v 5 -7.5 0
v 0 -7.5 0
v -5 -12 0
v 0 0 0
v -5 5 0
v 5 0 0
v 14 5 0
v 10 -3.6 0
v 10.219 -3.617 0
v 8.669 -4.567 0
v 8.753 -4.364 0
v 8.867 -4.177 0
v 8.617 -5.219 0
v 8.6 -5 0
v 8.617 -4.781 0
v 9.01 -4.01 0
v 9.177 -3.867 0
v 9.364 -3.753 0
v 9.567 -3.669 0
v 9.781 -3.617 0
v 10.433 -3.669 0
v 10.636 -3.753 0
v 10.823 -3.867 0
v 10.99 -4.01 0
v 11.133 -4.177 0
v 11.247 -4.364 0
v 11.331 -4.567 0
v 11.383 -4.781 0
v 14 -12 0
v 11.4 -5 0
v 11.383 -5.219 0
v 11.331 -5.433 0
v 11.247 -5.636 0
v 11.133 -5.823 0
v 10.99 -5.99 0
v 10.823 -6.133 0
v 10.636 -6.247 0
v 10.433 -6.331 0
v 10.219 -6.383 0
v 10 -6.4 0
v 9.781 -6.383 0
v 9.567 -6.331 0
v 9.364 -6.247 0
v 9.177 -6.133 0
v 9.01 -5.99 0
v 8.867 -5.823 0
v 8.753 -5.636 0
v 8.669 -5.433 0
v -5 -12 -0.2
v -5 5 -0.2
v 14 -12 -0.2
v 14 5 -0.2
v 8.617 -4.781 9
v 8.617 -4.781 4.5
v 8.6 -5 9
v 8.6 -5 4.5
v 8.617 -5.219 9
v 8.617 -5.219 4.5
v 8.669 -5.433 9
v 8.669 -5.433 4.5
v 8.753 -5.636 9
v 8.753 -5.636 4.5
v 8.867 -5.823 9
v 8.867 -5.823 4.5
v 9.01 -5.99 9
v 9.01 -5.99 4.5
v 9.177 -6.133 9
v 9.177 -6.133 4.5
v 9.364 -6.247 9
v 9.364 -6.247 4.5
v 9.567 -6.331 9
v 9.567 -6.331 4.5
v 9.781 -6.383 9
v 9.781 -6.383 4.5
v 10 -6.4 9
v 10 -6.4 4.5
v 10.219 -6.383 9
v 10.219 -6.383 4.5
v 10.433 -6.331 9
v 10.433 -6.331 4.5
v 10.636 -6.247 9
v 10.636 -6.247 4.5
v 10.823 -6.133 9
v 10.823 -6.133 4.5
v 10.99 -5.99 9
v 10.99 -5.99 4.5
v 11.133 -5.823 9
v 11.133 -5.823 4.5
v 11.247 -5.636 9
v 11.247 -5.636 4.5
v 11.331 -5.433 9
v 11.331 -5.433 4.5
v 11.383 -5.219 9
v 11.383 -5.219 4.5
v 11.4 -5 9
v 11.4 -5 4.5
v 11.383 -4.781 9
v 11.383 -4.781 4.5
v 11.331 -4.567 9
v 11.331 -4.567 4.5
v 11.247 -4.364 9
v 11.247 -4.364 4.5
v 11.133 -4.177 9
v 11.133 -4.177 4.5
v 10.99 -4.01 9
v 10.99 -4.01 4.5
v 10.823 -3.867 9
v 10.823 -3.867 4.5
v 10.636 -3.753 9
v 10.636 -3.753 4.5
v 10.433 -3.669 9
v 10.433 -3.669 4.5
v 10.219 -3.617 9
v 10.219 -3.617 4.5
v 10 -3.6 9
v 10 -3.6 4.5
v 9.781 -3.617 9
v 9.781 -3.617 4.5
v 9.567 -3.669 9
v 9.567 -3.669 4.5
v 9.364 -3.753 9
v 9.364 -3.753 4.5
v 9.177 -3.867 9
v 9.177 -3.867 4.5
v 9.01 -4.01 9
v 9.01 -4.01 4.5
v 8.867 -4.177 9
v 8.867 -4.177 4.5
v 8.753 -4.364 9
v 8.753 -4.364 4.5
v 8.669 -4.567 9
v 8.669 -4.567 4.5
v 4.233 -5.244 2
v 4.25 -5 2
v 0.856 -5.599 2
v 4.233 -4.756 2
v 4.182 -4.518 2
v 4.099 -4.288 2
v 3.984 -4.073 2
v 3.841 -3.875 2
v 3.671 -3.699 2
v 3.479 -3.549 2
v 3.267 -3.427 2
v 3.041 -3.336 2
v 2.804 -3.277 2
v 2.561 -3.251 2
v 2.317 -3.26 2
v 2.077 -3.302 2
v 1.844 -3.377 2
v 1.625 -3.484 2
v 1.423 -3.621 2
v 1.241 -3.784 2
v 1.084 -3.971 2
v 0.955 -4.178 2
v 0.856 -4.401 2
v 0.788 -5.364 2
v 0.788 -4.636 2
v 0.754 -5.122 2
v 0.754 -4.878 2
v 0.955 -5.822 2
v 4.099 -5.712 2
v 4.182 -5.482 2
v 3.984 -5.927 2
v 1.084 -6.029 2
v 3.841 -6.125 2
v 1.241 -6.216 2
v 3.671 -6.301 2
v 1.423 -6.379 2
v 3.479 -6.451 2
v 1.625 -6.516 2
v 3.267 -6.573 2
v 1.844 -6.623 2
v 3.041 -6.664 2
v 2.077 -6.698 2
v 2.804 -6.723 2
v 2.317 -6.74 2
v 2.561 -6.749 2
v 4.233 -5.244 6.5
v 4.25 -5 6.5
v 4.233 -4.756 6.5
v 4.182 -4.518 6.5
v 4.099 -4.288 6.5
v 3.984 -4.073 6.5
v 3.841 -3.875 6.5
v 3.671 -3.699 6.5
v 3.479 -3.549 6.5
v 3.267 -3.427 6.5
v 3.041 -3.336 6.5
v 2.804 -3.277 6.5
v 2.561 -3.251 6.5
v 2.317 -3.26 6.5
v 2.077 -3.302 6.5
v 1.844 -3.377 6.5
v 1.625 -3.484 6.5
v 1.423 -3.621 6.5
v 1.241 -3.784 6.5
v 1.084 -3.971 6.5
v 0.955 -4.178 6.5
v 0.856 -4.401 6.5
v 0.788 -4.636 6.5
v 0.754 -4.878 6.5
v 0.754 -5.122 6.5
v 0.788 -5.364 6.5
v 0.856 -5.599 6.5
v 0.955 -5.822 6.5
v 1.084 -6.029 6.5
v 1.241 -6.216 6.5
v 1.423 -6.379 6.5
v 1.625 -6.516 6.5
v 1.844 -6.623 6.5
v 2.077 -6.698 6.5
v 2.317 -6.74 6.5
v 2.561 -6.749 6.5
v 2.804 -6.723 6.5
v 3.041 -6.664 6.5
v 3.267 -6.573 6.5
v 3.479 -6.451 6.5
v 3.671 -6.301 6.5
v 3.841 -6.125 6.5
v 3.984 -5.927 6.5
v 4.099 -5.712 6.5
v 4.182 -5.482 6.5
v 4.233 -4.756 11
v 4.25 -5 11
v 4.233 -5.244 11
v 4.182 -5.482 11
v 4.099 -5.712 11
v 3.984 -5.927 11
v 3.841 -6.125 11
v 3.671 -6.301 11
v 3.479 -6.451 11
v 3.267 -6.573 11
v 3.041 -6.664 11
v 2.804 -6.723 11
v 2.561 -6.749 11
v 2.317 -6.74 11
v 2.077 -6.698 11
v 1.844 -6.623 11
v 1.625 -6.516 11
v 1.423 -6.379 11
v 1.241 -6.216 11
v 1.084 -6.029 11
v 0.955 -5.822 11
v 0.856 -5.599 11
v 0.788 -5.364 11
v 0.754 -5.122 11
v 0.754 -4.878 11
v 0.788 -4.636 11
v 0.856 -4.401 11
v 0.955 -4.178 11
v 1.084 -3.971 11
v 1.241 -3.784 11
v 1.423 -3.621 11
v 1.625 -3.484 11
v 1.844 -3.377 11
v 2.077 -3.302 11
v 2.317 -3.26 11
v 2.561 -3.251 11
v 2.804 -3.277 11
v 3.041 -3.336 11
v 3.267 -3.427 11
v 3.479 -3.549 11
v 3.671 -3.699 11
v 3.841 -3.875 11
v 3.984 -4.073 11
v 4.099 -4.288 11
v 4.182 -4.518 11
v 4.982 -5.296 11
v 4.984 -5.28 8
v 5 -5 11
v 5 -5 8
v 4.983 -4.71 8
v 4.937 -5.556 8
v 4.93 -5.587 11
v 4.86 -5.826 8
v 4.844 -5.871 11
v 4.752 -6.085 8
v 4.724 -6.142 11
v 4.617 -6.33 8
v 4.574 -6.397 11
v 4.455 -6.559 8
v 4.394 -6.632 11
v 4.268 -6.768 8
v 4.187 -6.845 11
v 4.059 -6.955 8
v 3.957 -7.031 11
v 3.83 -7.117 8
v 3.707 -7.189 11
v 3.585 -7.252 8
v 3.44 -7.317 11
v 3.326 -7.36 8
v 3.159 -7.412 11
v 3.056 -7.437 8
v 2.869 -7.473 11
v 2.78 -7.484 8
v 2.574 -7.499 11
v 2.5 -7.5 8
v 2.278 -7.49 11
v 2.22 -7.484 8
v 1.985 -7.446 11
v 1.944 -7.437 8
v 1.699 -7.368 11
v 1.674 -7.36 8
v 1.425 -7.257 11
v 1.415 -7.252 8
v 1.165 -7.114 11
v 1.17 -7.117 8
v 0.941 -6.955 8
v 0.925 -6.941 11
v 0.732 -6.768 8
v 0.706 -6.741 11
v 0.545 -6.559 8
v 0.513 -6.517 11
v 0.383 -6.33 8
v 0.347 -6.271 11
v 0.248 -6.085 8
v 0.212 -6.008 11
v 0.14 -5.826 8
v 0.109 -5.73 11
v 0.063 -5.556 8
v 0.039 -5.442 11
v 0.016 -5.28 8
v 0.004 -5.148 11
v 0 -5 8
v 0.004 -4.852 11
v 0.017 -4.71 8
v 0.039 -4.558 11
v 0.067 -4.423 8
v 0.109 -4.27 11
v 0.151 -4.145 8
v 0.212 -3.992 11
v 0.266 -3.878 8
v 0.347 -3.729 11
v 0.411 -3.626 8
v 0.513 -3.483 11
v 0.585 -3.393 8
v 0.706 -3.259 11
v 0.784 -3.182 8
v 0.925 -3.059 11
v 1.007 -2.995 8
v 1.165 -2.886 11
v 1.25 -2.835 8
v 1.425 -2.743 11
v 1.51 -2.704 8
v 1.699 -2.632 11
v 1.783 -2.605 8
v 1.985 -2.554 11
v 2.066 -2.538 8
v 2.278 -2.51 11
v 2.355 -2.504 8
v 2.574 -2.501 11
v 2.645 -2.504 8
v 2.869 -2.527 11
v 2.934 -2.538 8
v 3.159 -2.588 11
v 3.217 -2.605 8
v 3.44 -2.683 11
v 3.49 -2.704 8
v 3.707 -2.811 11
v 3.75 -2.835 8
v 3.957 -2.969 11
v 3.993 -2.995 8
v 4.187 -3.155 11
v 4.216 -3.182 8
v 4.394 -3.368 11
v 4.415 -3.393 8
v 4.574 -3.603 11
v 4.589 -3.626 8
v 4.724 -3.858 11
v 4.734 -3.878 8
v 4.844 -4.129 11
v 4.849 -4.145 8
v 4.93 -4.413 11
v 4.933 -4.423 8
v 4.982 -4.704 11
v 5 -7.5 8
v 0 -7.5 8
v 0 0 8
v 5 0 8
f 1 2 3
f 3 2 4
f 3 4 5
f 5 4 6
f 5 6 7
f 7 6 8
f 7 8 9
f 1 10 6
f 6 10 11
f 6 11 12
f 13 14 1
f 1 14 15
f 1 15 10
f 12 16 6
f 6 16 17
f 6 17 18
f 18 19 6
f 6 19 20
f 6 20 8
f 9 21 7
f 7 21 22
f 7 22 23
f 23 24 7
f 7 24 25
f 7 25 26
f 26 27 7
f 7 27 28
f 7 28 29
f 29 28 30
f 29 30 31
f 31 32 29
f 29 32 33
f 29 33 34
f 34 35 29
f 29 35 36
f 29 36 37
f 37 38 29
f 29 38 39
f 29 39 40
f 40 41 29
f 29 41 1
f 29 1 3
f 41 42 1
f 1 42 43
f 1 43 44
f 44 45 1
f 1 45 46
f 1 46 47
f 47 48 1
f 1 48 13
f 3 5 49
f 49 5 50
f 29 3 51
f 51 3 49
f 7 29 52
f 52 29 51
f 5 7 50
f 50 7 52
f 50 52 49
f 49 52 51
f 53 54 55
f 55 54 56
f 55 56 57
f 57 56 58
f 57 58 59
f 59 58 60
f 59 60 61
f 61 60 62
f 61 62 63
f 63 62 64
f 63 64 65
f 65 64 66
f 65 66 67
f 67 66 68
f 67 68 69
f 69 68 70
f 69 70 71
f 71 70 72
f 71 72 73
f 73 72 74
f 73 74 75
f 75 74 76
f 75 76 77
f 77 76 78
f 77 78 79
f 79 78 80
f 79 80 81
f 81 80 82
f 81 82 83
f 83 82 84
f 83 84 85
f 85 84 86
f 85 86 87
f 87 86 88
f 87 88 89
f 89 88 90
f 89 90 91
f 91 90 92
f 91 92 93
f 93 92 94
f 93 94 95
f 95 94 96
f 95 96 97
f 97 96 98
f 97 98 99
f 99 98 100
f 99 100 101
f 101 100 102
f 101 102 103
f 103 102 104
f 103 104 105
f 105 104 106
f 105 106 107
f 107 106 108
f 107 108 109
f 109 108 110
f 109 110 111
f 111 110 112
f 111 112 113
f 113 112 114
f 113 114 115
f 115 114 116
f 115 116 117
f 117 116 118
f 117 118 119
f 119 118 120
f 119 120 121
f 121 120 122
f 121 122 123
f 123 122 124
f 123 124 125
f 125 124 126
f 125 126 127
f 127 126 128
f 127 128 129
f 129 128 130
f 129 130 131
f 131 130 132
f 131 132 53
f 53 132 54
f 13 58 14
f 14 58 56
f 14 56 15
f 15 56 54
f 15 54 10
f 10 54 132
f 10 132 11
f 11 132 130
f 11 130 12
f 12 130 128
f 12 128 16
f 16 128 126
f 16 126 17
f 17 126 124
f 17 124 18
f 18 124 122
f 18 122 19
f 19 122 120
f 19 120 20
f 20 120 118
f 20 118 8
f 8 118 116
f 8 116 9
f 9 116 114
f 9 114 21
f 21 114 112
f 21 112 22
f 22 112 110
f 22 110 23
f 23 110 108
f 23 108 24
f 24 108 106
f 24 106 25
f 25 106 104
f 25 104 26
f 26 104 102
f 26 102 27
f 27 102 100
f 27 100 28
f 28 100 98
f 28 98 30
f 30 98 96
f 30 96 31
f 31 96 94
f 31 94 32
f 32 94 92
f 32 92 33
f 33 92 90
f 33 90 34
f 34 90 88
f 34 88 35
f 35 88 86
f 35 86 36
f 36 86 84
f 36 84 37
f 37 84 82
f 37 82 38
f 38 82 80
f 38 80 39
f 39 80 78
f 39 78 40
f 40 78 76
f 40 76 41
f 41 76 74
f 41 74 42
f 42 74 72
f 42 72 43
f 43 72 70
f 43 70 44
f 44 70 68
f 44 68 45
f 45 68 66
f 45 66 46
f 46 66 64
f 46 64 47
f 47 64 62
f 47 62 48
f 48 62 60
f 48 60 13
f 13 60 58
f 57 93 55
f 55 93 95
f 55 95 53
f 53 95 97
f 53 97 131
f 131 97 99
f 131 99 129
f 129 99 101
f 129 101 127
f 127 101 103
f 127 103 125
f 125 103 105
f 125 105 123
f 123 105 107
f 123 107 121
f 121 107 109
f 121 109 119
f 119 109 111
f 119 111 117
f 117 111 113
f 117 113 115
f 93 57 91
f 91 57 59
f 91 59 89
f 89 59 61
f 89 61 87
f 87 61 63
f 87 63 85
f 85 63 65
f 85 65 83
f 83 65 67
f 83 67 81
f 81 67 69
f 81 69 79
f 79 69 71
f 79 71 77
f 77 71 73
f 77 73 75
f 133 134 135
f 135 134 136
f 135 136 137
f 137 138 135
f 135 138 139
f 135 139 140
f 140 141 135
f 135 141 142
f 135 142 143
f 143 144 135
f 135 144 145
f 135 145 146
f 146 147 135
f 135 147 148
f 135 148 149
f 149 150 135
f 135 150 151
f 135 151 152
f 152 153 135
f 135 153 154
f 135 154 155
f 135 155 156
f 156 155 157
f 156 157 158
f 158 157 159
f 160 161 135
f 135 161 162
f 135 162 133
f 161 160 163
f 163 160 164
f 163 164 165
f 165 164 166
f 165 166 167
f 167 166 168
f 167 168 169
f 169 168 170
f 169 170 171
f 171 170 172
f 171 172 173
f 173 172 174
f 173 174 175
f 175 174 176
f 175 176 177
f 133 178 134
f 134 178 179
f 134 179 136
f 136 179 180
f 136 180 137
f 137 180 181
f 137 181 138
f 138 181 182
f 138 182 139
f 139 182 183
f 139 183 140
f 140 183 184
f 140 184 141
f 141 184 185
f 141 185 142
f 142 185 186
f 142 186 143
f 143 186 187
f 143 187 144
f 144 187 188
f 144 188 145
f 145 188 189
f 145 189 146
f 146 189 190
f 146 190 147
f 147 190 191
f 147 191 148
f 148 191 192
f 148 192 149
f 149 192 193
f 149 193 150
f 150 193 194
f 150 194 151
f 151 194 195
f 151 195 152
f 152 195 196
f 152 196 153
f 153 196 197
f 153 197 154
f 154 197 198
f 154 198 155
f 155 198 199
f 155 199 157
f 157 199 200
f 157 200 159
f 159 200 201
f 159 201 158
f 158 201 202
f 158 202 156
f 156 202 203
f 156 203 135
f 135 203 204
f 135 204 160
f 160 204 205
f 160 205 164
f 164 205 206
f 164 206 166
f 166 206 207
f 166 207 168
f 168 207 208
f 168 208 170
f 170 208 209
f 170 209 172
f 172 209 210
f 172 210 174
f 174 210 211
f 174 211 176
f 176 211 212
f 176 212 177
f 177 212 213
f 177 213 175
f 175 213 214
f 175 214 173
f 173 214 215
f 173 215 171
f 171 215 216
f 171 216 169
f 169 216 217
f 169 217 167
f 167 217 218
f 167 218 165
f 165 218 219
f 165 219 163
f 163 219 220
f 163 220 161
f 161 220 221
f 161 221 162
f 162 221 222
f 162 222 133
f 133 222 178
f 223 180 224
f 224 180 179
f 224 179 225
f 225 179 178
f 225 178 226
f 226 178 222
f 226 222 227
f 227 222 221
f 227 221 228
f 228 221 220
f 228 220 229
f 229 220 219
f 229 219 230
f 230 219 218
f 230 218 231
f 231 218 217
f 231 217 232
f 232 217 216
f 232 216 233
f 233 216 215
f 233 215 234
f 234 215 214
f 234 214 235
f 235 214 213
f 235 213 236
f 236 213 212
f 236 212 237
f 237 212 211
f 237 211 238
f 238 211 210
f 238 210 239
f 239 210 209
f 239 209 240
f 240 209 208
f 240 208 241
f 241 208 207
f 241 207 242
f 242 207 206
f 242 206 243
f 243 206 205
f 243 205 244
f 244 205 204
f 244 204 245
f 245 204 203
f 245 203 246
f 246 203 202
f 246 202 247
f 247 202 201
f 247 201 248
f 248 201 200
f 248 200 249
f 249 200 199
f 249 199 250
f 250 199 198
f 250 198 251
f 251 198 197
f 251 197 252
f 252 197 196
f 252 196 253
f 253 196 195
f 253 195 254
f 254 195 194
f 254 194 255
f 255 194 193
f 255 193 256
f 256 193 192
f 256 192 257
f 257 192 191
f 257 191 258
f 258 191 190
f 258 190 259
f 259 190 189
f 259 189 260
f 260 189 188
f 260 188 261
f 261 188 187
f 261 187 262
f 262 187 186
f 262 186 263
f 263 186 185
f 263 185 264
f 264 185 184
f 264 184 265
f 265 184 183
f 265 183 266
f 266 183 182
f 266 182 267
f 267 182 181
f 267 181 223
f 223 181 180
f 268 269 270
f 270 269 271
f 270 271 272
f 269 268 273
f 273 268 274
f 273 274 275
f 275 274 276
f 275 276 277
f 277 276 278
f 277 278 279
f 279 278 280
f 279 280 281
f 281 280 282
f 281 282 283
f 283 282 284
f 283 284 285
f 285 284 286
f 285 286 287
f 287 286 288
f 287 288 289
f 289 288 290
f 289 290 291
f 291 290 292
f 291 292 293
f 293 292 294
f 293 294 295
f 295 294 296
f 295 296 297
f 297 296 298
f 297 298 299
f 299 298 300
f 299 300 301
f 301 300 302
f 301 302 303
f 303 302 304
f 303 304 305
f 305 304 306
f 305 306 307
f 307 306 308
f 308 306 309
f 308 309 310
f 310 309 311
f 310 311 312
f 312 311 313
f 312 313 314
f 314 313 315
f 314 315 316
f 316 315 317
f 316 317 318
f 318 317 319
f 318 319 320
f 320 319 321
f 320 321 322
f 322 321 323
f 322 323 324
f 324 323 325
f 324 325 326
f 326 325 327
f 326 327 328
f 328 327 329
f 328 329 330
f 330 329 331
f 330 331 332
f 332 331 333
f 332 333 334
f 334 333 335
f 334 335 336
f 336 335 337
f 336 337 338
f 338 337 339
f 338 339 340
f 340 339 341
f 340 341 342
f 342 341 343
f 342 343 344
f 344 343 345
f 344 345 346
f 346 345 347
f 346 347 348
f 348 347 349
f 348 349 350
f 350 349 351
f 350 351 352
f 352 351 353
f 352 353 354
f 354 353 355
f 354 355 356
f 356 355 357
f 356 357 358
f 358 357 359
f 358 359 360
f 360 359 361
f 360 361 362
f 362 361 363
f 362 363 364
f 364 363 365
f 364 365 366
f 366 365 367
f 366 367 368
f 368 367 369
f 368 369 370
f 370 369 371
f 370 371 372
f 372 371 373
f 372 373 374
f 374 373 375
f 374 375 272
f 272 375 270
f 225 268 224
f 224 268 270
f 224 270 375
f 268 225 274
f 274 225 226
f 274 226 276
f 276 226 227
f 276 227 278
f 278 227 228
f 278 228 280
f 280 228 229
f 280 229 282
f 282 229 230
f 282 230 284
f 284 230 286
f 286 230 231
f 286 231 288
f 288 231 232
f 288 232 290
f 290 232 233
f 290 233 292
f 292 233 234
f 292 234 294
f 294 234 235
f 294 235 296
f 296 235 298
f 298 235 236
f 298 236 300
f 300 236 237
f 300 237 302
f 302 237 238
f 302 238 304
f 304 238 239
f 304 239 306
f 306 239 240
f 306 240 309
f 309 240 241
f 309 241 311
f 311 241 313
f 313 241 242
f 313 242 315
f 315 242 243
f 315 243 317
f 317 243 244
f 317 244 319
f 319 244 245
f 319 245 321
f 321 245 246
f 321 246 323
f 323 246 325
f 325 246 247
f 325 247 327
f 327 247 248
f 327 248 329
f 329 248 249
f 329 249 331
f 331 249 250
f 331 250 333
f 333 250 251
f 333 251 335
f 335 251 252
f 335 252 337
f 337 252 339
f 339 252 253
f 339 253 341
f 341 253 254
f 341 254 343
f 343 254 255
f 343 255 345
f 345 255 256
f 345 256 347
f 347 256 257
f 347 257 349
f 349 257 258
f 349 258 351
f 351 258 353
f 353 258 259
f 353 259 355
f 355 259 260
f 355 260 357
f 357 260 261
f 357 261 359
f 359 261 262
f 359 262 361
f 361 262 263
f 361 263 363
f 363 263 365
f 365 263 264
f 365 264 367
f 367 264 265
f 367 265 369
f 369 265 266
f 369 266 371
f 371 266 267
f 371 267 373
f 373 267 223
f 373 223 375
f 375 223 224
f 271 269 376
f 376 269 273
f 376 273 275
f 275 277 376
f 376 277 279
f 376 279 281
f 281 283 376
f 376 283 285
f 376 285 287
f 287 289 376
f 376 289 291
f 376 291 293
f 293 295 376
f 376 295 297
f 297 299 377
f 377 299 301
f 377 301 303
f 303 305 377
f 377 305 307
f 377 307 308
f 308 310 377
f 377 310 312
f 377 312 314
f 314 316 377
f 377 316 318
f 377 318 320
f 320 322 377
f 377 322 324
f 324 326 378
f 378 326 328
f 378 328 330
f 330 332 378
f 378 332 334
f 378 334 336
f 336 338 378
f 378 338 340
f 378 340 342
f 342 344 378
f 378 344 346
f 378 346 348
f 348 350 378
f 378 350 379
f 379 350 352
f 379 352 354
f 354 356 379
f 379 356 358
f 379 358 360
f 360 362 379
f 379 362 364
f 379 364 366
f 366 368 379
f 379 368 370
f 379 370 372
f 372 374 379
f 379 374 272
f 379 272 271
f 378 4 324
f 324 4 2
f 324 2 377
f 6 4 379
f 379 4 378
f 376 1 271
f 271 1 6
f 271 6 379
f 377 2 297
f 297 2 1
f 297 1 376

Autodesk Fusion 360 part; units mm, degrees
sketch "Sketch1" plane through (0, 0, 0) normal (0, 0, 1) x (1, 0, 0)
  line L0 (0, 0) -> (5, 0)
  line L1 (5, 0) -> (5, -7.5)
  line L2 (5, -7.5) -> (0, -7.5)
  line L3 (0, -7.5) -> (0, 0)
  dimension "d1" = 5
  dimension "d2" = 7.5
extrude "Extrude1" add sketch "Sketch1" along normal blind 8 makes body 1
sketch "Sketch2" plane through (0, 0, 8) normal (0, 0, 1) x (-1, 0, 0)
  line L0 (0, 7.5) -> (-5, 7.5)
  line L1 (-5, 7.5) -> (-5, 0)
  line L2 (-5, 0) -> (0, 0)
  line L3 (0, 0) -> (0, 7.5)
  circle A0 centre (-2.5, 5) radius 2.5
  circle A1 centre (-2.5, 5) radius 1.75
  dimension "d5" = 3.5
extrude "Extrude2" add sketch "Sketch2" along normal blind 3 contours A0 bodies 1
sketch "Sketch3" plane through (0, 0, 0) normal (0, 0, 1) x (1, 0, 0)
  circle A0 centre (10, -5) radius 1.4
  dimension "d8" = 2.8
extrude "Extrude3" add sketch "Sketch3" along normal blind 9 separate body makes body 2
extrude "Extrude4" cut 1 faces at (2.4138, -5.3569, 8) along direction (0, 0, -1) blind 6 on bodies 1 bodies 1
sketch "Sketch4" plane through (0, 0, 0) normal (0, 0, -1) x (1, 0, 0)
  line L0 (5, 7.5) -> (0, 7.5)
  line L1 (0, 7.5) -> (0, 0)
  line L2 (0, 0) -> (5, 0)
  line L3 (5, 0) -> (5, 7.5)
  line L4 (-5, 12) -> (14, 12)
  line L5 (14, 12) -> (14, -5)
  line L6 (14, -5) -> (-5, -5)
  line L7 (-5, -5) -> (-5, 12)
extrude "Extrude5" add sketch "Sketch4" along normal blind 0.2 contours L0 L1 L2 L3 | L4 L5 L6 L7 bodies 1 2
